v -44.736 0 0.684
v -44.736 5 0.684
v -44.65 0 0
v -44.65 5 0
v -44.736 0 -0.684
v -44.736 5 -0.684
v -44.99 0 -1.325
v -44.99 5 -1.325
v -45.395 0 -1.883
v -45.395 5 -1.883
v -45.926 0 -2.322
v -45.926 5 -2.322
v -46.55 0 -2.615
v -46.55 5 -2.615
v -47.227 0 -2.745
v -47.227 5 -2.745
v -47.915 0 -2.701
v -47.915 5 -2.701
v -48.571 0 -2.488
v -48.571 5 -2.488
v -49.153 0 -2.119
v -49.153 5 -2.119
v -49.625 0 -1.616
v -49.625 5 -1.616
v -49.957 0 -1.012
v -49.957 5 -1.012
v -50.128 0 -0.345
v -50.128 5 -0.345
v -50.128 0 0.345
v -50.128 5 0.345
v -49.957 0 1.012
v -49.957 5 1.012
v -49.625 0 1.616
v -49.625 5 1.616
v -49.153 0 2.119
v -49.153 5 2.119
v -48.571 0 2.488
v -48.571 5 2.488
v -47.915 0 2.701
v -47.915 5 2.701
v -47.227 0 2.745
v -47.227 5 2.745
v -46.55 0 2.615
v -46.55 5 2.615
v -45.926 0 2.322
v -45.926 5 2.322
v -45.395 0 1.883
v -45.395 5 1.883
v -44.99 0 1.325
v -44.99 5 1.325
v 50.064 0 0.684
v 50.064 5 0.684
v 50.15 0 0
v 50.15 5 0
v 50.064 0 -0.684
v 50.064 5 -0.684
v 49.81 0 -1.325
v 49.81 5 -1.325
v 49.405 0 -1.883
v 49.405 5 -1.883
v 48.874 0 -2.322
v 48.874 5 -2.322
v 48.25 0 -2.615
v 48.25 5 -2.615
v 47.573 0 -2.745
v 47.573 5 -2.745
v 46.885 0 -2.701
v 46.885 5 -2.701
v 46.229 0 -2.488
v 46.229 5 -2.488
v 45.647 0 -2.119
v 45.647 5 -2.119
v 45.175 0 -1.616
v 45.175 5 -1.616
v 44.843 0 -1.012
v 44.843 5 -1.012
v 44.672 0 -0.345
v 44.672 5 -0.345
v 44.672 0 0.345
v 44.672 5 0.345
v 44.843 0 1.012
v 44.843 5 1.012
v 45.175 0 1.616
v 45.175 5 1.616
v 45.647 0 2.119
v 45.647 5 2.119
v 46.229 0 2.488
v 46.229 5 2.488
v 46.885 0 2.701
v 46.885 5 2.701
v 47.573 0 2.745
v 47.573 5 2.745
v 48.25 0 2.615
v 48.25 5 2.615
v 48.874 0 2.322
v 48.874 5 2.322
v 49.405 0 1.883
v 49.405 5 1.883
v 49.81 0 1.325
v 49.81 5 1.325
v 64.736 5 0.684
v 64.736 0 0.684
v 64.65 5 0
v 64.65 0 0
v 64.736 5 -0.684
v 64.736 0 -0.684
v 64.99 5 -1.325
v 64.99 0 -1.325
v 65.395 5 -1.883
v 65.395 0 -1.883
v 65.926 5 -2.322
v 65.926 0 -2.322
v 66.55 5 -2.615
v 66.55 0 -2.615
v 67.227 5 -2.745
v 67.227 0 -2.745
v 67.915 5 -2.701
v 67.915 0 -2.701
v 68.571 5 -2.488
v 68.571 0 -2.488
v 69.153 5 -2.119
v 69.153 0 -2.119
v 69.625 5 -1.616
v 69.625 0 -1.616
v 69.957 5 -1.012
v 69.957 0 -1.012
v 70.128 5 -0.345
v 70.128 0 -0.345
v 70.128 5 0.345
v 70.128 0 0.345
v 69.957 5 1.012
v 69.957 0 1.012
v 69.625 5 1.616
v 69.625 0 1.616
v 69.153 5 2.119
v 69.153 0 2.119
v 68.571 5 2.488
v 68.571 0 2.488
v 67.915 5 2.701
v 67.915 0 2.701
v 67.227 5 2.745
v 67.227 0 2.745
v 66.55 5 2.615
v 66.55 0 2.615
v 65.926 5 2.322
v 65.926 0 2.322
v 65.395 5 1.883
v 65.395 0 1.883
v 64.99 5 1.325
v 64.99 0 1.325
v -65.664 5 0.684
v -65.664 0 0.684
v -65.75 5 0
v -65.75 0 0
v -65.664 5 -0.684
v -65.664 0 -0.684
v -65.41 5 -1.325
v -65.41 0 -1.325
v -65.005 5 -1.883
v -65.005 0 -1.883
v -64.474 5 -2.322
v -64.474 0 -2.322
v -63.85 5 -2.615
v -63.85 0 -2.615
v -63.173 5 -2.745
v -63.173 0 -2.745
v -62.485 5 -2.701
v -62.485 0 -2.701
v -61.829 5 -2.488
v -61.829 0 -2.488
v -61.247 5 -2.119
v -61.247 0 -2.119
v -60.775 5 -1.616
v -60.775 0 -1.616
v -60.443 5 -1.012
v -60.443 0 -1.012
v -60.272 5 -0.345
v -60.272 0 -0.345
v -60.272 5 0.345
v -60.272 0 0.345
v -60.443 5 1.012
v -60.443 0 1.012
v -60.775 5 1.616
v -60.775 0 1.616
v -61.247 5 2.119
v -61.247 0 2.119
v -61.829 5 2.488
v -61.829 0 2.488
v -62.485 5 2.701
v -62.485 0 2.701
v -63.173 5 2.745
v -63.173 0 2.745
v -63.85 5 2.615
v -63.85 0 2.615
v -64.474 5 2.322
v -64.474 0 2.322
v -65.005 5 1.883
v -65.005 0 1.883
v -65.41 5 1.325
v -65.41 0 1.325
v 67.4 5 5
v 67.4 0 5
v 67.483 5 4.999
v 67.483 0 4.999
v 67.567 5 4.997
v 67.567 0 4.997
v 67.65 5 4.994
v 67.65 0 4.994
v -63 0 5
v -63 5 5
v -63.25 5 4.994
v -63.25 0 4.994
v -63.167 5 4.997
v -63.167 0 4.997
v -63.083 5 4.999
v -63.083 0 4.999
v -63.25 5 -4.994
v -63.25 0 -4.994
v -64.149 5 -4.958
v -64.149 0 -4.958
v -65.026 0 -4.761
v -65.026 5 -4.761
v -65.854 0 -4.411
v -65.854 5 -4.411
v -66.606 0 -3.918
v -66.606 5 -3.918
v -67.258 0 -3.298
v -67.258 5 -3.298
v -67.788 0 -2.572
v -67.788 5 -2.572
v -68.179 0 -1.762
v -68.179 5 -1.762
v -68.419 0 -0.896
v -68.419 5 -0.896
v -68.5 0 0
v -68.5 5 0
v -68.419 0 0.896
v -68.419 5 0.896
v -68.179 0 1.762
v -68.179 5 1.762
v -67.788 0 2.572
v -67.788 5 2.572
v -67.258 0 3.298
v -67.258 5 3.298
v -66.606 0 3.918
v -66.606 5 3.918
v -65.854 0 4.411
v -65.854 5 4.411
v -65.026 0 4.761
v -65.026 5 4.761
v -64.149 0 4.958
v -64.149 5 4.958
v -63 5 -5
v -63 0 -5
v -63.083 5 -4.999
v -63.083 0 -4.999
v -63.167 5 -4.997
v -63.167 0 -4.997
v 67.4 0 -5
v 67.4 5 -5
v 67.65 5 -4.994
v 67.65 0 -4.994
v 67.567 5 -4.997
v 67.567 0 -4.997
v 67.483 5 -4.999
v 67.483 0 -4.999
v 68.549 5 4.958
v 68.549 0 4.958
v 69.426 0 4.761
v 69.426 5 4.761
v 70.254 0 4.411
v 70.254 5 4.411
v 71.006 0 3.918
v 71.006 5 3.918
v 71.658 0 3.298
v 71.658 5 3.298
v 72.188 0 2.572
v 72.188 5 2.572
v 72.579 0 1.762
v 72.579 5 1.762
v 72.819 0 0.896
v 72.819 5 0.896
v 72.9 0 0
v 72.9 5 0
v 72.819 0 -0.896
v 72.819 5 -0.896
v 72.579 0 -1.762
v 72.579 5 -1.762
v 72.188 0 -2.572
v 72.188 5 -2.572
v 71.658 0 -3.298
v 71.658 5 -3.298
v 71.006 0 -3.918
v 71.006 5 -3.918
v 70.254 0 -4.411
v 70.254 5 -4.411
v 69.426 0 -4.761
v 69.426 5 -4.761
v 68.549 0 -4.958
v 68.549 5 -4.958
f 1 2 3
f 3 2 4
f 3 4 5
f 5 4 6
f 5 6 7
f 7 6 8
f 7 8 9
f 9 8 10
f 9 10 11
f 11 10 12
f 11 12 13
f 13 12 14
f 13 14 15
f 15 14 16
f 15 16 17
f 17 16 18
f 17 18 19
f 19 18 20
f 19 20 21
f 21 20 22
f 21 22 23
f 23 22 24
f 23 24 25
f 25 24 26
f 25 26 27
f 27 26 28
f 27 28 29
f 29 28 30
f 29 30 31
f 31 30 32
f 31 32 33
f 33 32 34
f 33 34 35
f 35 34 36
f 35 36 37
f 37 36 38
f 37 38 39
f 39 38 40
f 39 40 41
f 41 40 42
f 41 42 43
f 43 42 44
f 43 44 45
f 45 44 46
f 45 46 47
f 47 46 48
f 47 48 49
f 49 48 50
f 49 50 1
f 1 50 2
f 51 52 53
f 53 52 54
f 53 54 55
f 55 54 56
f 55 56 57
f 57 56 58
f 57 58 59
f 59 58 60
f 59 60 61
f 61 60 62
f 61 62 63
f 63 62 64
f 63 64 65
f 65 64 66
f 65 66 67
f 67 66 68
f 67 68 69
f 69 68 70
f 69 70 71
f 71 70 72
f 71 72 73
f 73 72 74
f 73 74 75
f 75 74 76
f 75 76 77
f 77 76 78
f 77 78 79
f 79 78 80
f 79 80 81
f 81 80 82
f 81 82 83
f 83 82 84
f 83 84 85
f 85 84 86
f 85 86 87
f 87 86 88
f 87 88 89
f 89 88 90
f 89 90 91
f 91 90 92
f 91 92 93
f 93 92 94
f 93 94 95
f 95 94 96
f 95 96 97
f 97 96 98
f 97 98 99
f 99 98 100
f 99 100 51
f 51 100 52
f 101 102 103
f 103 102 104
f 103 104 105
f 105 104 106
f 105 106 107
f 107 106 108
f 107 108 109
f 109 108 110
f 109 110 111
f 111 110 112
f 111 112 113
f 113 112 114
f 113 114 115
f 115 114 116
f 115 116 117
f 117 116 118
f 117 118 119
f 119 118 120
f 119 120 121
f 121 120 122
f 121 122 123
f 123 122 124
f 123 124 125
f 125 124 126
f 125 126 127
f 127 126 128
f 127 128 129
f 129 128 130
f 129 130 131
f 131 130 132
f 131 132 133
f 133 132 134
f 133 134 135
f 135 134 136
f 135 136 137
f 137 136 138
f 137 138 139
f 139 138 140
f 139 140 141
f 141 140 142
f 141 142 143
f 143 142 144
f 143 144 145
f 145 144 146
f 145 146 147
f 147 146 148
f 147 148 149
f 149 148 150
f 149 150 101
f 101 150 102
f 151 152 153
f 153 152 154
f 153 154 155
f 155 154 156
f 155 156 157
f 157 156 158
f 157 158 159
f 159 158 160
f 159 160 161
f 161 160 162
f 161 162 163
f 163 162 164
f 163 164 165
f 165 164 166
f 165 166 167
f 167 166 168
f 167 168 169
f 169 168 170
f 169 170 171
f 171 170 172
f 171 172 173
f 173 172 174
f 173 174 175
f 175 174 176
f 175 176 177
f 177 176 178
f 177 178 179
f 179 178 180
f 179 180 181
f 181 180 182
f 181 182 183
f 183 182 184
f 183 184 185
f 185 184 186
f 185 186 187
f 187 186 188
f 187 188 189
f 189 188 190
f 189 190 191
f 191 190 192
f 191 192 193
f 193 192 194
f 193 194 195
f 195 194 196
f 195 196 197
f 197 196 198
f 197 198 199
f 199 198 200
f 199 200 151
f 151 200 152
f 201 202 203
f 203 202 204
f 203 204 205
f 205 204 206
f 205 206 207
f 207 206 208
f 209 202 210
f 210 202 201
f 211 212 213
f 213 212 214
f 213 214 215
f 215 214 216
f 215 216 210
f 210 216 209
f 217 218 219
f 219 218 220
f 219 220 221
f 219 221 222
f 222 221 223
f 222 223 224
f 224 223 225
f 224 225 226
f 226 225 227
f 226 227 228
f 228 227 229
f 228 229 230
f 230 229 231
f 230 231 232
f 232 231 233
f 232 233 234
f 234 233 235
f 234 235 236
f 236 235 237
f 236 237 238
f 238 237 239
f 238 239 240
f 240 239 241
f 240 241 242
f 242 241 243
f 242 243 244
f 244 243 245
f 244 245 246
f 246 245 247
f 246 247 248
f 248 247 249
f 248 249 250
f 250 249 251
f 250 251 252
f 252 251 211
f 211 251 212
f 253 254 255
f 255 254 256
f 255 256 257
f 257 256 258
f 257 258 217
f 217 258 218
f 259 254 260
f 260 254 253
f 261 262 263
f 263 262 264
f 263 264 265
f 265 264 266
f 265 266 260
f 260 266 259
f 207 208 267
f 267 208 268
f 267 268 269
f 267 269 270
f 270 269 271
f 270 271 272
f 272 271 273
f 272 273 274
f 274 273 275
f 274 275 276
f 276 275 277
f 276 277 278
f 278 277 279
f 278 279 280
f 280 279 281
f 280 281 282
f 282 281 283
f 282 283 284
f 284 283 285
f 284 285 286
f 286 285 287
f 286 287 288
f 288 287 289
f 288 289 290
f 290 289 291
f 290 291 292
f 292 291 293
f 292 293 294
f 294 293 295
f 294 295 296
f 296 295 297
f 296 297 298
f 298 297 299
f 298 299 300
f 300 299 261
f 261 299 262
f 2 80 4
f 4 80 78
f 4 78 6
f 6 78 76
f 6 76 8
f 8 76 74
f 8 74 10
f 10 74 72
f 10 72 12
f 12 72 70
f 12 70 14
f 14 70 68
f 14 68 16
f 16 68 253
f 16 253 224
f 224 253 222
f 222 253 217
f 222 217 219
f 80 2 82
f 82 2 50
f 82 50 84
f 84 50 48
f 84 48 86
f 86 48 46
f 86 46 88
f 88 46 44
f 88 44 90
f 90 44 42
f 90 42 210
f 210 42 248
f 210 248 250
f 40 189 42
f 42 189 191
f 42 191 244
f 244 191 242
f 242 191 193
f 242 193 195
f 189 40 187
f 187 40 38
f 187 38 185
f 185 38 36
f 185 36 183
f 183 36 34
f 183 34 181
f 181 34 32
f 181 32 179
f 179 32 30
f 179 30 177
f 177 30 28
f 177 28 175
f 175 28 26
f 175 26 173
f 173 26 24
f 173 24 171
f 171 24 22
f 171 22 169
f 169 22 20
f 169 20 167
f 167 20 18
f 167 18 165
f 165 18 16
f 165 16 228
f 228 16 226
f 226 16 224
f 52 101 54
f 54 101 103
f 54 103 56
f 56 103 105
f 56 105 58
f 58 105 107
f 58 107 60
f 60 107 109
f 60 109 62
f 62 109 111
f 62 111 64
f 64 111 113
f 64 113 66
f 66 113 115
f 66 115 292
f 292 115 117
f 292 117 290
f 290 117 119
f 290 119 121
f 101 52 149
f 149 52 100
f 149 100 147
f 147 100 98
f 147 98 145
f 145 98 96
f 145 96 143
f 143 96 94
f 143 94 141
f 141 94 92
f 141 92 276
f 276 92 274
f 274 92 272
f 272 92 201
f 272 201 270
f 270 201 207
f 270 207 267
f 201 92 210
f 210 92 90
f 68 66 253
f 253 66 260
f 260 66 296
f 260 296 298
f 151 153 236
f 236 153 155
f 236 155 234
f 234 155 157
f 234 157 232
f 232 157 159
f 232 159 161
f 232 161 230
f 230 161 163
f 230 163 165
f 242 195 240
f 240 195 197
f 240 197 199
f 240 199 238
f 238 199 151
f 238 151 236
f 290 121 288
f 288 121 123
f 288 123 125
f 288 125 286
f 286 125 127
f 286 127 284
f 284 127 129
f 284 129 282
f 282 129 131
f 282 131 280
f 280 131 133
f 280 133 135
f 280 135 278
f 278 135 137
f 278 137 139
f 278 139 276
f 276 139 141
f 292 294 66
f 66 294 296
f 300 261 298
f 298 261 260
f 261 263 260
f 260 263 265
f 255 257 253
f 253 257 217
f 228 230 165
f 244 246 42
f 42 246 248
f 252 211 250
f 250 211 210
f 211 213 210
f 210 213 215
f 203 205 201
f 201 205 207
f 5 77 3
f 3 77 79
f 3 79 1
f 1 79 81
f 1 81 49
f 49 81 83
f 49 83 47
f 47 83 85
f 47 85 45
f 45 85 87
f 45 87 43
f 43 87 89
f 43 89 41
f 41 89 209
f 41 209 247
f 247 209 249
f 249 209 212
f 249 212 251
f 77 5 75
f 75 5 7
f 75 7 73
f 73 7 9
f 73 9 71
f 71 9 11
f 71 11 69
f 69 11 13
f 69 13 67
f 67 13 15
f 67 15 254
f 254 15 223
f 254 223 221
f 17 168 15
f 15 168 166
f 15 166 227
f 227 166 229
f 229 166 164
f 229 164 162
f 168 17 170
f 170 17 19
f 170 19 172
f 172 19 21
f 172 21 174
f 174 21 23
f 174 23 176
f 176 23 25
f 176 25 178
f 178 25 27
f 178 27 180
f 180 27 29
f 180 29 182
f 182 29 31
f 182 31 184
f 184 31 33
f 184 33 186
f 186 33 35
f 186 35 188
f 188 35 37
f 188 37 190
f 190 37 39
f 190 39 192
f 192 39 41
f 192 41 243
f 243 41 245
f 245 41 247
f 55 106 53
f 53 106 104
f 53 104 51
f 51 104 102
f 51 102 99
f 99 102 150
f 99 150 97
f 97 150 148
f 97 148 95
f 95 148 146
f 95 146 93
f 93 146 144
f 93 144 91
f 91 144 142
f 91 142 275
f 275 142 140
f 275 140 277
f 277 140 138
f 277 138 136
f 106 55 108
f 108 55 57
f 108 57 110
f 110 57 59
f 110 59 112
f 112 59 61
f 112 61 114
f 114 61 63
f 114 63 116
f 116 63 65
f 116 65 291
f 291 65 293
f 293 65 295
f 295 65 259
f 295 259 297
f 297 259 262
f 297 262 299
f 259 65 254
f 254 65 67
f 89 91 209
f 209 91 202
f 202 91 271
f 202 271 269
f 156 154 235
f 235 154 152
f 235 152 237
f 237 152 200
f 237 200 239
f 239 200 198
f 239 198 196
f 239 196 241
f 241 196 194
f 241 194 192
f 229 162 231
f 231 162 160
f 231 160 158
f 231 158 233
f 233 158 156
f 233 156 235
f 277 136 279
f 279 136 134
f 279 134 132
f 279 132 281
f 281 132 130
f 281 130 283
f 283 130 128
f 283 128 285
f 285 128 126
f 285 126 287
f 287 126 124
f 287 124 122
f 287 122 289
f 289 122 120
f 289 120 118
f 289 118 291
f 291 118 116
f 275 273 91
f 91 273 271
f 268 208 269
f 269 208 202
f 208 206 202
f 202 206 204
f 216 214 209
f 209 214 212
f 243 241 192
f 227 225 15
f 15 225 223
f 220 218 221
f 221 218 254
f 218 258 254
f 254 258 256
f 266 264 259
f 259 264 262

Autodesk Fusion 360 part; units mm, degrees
sketch "Boceto1" plane through (0, 0, 0) normal (0, 1, 0) x (1, 0, 0)
  line L0 (-63, -5) -> (67.4, -5)
  line L1 (67.4, 5) -> (-63, 5)
  line L2 (-67.4, 0) -> (67.4, 0) construction
  circle A0 centre (67.4, 0) radius 2.75
  circle A1 centre (-63, 0) radius 2.75
  arc A2 (-63, 5) -> (-63.25, 4.9937) centre (-63, 0) ccw
  arc A3 (-63.25, -4.9937) -> (-63, -5) centre (-63, 0) ccw
  arc A4 (-63.25, 4.9937) -> (-63.25, -4.9937) centre (-63.5, 0) ccw
  arc A5 (67.4, -5) -> (67.65, -4.9937) centre (67.4, 0) ccw
  arc A6 (67.65, 4.9937) -> (67.4, 5) centre (67.4, 0) ccw
  arc A7 (67.65, -4.9937) -> (67.65, 4.9937) centre (67.9, 0) ccw
  dimension "d1" = 10
  dimension "d4" = 5.5
  dimension "d11" = 5.5
  dimension "d12" = 130.4
  dimension "d13" = 10
  dimension "d14" = 0.5
  dimension "d15" = 10
  dimension "d16" = 0.5
extrude "Extruir1" add sketch "Boceto1" along normal blind 5
sketch "Boceto2" plane through (0, 5, 0) normal (0, 1, 0) x (-1, 0, 0)
  circle A0 centre (-67.4, 0) radius 2.75
  line L0 (63, 5) -> (-67.4, 5)
  arc A1 (-67.65, -4.9937) -> (-67.4, -5) centre (-67.4, 0) ccw
  line L1 (-67.4, -5) -> (63, -5)
  circle A2 centre (47.4, 0) radius 2.75
  line L2 (0, 0) -> (0, -16) construction
  circle A3 centre (-47.4, 0) radius 2.75
  arc A4 (-67.65, 4.9937) -> (-67.65, -4.9937) centre (-67.9, 0) ccw
  arc A5 (63, -5) -> (63.25, -4.9937) centre (63, 0) ccw
  arc A6 (63.25, -4.9937) -> (63.25, 4.9937) centre (63.5, 0) ccw
  arc A7 (63.25, 4.9937) -> (63, 5) centre (63, 0) ccw
  arc A8 (-67.4, 5) -> (-67.65, 4.9937) centre (-67.4, 0) ccw
  circle A9 centre (63, 0) radius 2.75
  dimension "d7" = 5.5
  dimension "d17" = 47.4
  dimension "d18" = 47.4
extrude "Extruir2" cut sketch "Boceto2" against normal blind 13 contours A2 | A3
